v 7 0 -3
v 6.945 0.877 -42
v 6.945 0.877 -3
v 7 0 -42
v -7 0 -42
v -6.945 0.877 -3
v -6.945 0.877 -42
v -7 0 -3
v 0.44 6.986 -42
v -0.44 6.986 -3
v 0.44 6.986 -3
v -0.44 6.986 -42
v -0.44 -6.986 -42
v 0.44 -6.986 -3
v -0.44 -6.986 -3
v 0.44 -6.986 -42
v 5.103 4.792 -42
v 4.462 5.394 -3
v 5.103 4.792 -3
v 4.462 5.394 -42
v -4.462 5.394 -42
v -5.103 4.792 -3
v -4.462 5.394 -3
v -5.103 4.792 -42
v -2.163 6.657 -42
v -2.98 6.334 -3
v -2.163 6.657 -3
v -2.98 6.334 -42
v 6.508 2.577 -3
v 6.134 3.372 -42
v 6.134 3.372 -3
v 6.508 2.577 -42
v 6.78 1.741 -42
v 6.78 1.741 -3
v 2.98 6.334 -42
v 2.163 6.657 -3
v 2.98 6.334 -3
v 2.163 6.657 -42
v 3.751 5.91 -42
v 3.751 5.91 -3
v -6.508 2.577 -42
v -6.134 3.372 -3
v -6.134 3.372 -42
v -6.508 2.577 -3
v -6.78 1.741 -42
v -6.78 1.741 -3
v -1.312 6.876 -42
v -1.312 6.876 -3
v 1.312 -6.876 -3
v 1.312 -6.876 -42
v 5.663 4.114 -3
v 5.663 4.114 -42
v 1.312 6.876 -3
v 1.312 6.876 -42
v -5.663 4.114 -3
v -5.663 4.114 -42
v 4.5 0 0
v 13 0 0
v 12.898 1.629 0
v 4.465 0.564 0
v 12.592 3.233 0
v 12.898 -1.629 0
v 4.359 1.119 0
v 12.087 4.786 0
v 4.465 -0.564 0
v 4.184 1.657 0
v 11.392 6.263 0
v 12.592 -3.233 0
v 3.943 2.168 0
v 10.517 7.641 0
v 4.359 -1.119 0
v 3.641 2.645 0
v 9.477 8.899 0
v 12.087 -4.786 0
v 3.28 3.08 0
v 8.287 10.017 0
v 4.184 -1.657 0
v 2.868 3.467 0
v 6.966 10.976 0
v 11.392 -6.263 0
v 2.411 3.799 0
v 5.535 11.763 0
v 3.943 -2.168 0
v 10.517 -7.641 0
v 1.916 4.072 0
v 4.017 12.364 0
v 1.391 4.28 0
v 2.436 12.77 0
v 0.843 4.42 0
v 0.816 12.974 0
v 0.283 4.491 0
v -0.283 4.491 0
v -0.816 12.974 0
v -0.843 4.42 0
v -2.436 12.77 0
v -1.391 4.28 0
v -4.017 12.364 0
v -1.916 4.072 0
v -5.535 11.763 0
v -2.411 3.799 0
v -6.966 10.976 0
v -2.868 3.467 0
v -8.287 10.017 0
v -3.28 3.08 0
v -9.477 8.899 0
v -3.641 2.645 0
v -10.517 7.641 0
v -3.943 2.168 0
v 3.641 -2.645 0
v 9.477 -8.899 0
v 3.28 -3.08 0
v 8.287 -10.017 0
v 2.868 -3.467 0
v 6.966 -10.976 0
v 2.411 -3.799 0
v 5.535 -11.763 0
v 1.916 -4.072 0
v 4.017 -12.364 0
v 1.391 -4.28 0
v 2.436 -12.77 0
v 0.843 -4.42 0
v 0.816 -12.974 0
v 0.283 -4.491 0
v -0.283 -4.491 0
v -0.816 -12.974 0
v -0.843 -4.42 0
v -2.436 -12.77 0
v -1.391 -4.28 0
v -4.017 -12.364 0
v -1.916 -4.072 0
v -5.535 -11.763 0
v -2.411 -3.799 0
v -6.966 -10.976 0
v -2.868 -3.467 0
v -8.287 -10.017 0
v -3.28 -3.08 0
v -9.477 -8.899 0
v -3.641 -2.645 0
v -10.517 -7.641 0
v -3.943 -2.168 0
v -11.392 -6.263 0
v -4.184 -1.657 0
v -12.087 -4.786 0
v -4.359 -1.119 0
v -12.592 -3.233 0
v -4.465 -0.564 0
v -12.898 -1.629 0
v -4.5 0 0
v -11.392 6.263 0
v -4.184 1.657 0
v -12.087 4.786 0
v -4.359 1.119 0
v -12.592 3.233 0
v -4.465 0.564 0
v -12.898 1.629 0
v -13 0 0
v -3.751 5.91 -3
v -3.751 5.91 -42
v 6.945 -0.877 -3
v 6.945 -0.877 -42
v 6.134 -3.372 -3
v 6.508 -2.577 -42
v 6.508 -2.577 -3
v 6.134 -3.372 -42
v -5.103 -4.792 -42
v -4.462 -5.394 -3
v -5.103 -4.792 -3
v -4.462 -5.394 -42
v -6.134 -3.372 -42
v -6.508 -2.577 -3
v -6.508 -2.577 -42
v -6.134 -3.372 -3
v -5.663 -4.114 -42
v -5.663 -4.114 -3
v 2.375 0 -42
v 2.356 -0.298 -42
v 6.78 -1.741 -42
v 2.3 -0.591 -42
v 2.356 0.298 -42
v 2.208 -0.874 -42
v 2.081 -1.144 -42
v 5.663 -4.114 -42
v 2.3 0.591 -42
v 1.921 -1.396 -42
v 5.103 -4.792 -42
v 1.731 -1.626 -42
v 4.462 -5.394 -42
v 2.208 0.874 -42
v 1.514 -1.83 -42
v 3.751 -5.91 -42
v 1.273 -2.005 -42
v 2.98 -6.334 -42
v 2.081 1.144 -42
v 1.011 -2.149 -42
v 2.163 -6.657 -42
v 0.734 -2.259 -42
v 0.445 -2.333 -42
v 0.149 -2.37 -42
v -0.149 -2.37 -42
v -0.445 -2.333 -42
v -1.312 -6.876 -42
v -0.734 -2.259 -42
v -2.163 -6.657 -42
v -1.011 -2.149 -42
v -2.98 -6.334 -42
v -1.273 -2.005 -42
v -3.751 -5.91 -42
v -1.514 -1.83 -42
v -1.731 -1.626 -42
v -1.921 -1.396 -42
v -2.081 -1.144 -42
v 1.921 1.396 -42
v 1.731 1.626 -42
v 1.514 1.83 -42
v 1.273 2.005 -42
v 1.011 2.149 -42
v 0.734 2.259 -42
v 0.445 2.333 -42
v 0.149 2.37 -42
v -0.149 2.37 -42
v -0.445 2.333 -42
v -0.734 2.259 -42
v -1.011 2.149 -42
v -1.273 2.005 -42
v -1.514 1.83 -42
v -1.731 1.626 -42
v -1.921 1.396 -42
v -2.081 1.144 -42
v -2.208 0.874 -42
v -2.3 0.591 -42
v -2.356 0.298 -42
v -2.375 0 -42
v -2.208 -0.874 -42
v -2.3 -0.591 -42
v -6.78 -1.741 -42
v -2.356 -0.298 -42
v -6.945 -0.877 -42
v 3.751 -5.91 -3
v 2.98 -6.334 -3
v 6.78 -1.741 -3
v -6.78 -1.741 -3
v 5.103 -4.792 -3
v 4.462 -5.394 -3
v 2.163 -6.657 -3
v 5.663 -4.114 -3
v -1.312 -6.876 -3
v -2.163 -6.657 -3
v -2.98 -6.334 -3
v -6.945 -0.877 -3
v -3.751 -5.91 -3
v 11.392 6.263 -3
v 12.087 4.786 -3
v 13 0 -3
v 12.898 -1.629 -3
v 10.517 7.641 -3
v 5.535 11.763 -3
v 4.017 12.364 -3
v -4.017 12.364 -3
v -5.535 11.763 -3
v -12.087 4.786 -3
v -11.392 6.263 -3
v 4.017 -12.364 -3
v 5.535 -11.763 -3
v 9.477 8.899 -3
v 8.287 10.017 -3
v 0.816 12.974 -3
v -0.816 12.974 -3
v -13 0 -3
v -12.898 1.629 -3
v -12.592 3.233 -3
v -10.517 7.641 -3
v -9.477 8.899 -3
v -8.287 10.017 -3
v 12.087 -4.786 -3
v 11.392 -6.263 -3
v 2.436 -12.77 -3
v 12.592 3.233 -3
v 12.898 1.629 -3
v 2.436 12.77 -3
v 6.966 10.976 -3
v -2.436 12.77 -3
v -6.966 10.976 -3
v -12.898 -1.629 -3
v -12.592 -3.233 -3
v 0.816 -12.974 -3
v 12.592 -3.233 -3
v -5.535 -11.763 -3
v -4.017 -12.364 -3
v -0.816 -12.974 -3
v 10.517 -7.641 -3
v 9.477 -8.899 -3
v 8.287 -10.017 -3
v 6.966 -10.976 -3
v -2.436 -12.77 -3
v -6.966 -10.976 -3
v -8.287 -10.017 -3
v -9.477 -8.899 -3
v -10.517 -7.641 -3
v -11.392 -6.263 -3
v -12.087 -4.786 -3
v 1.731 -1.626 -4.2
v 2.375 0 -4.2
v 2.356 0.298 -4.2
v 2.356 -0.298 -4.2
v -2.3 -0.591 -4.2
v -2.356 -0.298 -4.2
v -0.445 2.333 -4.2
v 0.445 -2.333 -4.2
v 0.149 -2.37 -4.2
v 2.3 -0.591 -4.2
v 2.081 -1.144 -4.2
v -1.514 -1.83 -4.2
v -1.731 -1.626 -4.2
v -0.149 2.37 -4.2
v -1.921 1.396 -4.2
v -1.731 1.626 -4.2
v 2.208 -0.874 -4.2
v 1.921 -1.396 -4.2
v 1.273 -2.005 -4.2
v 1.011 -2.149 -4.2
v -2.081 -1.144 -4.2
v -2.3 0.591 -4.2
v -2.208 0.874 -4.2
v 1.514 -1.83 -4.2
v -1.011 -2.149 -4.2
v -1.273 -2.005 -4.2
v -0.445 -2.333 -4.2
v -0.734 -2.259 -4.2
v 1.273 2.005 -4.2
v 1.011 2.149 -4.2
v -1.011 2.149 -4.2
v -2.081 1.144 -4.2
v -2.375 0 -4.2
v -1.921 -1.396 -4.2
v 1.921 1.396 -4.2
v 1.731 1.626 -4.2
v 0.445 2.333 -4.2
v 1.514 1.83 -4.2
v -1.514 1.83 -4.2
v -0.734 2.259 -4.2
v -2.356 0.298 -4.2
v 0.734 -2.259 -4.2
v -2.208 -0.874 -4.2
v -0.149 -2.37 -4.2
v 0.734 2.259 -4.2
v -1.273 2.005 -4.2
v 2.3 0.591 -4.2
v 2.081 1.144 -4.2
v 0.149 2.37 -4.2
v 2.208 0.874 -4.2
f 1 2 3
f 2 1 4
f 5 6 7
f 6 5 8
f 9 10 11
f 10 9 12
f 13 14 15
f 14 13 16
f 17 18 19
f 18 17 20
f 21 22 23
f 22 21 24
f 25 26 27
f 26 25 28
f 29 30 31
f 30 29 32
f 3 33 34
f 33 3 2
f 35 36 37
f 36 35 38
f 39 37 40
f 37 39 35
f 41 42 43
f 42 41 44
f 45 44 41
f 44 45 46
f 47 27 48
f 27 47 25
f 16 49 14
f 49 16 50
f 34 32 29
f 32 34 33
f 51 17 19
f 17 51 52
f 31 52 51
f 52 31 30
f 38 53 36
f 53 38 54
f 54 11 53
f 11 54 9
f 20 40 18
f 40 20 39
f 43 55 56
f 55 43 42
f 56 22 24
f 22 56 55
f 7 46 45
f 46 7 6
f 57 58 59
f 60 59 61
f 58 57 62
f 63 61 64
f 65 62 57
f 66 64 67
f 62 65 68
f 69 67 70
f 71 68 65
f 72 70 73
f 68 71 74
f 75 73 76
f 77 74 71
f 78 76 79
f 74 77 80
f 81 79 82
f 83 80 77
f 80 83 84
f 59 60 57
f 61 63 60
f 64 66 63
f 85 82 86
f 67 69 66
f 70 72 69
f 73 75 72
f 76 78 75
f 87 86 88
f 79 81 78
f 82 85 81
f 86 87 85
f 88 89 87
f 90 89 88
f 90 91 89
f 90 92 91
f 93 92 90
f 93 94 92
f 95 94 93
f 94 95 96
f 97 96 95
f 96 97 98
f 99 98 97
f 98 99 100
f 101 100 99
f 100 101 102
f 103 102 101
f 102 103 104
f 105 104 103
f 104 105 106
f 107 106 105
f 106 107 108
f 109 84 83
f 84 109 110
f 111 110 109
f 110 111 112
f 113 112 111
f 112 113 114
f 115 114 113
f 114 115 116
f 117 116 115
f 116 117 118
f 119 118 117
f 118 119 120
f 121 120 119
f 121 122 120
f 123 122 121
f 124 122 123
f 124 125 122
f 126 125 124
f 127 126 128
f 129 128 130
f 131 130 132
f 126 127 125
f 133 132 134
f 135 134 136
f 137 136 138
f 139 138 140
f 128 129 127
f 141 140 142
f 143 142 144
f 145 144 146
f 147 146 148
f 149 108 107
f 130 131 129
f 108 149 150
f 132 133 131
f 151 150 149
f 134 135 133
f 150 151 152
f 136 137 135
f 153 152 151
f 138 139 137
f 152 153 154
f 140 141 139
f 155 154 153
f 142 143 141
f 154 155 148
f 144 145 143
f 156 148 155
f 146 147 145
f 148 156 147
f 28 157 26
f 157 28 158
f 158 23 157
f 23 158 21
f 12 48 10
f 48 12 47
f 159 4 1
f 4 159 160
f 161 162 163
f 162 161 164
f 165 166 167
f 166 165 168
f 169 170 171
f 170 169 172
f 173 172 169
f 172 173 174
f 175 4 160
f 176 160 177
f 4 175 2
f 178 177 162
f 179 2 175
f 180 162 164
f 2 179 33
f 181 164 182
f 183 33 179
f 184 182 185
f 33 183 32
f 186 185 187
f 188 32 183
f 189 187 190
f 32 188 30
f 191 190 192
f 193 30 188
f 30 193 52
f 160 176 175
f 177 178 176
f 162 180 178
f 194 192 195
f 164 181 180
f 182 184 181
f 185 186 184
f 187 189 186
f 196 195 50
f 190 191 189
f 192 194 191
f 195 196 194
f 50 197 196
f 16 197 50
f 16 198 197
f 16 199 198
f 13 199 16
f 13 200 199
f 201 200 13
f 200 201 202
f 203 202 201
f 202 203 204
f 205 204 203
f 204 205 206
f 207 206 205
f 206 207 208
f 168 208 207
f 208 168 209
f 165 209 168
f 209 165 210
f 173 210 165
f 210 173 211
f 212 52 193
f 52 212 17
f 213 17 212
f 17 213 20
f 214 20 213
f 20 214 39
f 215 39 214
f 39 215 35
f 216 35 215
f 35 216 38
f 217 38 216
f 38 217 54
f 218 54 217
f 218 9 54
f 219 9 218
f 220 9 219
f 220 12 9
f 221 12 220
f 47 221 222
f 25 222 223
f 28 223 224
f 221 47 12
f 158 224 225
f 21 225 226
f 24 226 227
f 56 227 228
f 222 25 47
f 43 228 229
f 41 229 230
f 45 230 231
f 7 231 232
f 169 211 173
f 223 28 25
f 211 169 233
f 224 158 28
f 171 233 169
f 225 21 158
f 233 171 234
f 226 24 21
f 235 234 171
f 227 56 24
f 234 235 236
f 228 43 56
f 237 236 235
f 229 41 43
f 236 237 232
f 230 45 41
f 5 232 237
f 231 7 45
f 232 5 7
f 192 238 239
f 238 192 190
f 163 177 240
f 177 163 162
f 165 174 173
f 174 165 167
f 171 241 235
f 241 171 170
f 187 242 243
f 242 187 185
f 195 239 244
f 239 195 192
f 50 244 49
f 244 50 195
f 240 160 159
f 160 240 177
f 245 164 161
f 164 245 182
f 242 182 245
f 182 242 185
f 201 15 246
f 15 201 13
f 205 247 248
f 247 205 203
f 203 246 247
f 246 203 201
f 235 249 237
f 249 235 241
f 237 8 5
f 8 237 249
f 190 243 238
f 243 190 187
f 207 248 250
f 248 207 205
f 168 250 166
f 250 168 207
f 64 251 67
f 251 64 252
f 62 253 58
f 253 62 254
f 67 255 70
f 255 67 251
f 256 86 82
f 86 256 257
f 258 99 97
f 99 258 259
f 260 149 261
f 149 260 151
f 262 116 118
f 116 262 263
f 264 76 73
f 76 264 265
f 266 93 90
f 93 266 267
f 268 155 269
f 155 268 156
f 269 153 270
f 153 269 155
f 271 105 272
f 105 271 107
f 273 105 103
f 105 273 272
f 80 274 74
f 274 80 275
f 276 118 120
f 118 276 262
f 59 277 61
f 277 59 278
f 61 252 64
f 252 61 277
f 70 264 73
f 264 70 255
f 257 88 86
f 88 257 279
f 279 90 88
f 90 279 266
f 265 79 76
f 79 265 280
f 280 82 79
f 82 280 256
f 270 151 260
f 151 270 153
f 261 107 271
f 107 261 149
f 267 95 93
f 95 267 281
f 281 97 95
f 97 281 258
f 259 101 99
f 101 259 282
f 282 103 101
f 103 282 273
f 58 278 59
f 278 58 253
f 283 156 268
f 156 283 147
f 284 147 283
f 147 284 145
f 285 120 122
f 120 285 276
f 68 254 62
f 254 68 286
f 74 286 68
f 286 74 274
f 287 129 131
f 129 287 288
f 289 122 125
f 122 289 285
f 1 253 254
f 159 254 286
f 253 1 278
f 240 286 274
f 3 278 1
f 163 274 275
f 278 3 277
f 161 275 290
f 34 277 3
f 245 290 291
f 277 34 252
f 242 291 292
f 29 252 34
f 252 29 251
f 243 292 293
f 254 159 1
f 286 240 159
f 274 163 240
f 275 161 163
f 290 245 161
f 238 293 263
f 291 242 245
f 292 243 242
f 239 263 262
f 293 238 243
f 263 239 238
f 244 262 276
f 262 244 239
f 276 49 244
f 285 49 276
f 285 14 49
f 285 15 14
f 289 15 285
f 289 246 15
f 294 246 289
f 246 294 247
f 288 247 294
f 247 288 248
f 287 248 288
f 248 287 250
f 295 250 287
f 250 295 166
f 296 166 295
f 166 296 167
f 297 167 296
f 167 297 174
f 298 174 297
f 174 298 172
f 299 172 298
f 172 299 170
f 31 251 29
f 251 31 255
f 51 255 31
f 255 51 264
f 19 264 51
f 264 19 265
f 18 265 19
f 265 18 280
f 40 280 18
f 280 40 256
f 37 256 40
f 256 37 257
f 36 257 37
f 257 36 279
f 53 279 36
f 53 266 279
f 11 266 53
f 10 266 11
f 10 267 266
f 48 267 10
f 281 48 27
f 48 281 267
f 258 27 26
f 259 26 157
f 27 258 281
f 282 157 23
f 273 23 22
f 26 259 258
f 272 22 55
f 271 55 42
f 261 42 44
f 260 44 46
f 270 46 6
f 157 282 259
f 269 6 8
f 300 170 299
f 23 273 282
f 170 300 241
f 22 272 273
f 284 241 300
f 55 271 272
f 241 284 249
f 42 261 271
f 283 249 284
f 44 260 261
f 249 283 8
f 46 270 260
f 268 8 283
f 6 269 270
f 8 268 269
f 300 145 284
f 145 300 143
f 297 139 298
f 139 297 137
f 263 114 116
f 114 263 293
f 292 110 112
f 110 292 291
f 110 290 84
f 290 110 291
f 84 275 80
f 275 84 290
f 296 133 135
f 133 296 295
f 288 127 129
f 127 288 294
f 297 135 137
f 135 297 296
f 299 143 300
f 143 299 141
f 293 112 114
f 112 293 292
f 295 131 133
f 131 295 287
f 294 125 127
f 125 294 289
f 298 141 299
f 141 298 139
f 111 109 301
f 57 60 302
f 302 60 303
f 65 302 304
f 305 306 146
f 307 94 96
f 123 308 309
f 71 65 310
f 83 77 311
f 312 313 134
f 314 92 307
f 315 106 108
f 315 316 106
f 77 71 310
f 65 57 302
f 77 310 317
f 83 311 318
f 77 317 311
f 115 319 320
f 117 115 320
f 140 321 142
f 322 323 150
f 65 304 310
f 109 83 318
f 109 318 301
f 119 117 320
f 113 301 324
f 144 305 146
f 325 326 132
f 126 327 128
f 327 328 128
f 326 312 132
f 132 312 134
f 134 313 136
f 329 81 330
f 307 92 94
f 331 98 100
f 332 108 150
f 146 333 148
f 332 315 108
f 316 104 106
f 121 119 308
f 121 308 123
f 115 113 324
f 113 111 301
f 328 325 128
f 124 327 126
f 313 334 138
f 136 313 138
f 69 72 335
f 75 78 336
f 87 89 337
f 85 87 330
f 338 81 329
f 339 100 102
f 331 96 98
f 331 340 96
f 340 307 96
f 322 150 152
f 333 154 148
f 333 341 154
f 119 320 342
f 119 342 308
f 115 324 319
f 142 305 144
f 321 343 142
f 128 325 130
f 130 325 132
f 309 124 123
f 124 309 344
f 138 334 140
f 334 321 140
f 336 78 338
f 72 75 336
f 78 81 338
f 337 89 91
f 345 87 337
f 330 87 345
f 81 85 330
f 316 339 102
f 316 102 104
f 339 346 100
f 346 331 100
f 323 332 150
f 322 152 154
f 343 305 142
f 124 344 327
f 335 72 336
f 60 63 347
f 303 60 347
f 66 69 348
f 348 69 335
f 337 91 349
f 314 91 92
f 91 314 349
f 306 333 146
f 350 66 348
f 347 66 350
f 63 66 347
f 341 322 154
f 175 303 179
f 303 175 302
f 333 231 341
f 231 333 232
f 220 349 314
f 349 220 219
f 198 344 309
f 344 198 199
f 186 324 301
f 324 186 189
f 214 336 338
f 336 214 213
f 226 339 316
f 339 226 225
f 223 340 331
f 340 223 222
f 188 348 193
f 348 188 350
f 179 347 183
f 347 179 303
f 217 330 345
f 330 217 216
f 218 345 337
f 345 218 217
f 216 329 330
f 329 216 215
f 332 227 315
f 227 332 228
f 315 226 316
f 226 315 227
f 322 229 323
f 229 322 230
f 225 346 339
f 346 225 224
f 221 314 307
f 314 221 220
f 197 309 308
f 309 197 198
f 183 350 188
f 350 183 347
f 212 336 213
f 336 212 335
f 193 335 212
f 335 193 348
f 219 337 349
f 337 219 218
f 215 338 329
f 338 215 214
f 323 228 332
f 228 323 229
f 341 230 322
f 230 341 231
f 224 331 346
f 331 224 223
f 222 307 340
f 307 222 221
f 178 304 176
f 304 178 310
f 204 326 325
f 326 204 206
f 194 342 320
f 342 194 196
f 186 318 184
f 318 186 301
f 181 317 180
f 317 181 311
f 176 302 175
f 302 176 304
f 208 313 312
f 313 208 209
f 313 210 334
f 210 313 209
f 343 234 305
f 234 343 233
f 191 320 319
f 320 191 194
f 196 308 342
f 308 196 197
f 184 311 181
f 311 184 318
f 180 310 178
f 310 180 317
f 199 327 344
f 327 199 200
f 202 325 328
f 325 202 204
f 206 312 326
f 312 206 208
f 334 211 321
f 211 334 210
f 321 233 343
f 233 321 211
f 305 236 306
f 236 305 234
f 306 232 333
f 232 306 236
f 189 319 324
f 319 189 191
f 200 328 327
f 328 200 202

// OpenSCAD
$fn = 50;


difference() {
	union() {
		translate(v = [0, 0, -42.0000000000]) {
			cylinder(h = 42, r = 7.0000000000);
		}
		translate(v = [0, 0, -3.0000000000]) {
			cylinder(h = 3, r = 13.0000000000);
		}
	}
	union() {
		translate(v = [0, 0, 0]) {
			rotate(a = [0, 0, 0]) {
				difference() {
					union() {
						#translate(v = [0, 0, -42.0000000000]) {
							cylinder(h = 42, r = 2.2500000000);
						}
						#translate(v = [0, 0, -4.2000000000]) {
							cylinder(h = 4.2000000000, r1 = 2.3750000000, r2 = 4.5000000000);
						}
						#translate(v = [0, 0, -42.0000000000]) {
							cylinder(h = 42, r = 2.3750000000);
						}
						#translate(v = [0, 0, -42.0000000000]) {
							cylinder(h = 42, r = 2.2500000000);
						}
					}
					union();
				}
			}
		}
	}
}
